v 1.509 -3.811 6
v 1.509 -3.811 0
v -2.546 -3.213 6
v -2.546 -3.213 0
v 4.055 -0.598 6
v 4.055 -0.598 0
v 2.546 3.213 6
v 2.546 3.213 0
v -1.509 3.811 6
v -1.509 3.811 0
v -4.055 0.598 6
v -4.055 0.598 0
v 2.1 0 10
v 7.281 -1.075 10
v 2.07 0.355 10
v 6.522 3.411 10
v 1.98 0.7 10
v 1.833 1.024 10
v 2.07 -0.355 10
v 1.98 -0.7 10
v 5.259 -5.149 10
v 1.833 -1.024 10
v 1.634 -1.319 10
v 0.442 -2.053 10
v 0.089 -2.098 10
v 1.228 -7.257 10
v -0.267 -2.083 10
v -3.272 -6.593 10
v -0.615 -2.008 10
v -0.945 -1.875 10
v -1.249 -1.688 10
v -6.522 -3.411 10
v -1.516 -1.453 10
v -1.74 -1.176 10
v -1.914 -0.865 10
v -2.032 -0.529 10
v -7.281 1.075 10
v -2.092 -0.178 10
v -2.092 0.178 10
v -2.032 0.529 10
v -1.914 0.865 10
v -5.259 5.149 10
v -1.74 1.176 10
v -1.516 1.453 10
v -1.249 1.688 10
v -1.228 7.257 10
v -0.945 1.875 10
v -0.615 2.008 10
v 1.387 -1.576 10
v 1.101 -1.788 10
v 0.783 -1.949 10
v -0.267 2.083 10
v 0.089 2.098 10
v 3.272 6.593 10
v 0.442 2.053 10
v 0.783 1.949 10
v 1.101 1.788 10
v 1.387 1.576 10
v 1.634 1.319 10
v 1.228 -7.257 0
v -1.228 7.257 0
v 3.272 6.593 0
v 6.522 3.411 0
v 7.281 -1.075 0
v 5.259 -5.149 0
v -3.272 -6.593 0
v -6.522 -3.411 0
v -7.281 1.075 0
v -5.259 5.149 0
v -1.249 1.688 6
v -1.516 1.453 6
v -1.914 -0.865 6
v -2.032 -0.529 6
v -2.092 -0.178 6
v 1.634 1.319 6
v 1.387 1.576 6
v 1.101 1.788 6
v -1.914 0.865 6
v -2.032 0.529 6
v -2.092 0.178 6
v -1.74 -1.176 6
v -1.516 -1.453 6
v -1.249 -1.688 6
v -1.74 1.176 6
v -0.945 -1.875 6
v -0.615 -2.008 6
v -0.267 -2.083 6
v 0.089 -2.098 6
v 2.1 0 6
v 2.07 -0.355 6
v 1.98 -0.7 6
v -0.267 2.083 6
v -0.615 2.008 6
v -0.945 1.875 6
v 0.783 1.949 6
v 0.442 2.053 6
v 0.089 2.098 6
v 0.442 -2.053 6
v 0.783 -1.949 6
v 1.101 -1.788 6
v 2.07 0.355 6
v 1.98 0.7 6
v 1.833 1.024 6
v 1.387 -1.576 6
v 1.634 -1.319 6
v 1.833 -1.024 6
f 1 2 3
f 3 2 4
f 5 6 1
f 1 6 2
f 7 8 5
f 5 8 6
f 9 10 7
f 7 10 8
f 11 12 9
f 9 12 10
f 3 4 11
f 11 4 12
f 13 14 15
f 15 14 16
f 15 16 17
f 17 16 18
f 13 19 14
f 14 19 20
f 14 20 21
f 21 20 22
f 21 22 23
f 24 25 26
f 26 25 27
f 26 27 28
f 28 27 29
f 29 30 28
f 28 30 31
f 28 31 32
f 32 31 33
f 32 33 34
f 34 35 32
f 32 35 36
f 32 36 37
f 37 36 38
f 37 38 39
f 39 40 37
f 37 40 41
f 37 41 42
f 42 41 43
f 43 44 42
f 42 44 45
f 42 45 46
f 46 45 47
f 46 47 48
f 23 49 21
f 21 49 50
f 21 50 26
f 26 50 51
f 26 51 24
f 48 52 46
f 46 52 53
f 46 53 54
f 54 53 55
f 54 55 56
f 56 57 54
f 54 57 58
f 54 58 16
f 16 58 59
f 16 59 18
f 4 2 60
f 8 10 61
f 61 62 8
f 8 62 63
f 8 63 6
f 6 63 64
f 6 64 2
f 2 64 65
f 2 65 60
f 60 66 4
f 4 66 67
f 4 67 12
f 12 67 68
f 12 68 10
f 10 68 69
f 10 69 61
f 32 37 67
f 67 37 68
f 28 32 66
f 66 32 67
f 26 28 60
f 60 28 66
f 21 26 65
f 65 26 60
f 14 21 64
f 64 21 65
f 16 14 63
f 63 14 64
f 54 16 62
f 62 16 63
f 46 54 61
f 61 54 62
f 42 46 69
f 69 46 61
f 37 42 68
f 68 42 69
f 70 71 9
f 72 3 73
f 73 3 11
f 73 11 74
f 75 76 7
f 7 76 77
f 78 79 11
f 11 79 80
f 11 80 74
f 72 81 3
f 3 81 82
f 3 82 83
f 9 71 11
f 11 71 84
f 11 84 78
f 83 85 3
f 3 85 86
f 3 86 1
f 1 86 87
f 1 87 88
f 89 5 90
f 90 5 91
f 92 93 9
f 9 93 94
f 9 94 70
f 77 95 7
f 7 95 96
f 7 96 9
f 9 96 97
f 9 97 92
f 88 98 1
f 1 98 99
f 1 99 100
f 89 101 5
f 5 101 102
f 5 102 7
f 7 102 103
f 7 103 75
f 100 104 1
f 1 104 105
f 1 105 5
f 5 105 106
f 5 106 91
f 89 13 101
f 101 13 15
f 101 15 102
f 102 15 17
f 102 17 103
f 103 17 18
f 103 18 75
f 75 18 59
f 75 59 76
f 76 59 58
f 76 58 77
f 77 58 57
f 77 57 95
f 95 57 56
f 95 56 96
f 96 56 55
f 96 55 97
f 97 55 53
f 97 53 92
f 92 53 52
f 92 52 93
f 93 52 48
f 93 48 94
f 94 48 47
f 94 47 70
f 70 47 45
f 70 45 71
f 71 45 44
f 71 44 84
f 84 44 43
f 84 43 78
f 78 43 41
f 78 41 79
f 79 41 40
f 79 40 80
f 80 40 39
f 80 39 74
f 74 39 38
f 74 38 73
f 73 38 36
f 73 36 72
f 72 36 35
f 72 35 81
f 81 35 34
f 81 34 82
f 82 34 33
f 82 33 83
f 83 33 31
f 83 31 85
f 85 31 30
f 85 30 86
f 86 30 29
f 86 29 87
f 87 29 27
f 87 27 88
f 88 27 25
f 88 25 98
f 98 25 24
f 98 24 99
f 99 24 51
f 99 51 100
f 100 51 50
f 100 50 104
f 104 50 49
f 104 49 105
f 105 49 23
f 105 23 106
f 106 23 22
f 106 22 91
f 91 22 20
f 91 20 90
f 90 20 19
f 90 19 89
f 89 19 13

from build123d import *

# Parameters (mm, degrees)
BOSS_EXTRU_1_DEPTH = 10
ESQUISSE3_R        = 4.517940726
ESQUISSE3_R_2      = 2.1
BOSS_EXTRU_2_DEPTH = 4


with BuildPart() as part:
    # Esquisse1 → Boss.-Extru.1 (new body)
    with BuildSketch(Plane.XY):
        Polygon((-5.259154953, 5.14920934), (-7.281375044, 1.074544143), (-6.522357353, -3.410560394), (-3.27202084, -6.592946782), (1.228116422, -7.257051584), (5.259154953, -5.14920934), (7.281375044, -1.074544143), (6.522357353, 3.410560394), (3.27202084, 6.592946782), (-1.228116422, 7.257051584), align=None)
        Polygon((1.509357523, -3.811190523), (4.055266573, -0.598453303), (2.54590905, 3.21273722), (-1.509357523, 3.811190523), (-4.055266573, 0.598453303), (-2.54590905, -3.21273722), align=None, mode=Mode.SUBTRACT)
    extrude(amount=BOSS_EXTRU_1_DEPTH)

    # Esquisse3 → Boss.-Extru.2 (add)
    with BuildSketch(Plane.XY.offset(10)):
        Circle(ESQUISSE3_R)
        Circle(ESQUISSE3_R_2, mode=Mode.SUBTRACT)
    extrude(amount=-BOSS_EXTRU_2_DEPTH)


solid = part.part
